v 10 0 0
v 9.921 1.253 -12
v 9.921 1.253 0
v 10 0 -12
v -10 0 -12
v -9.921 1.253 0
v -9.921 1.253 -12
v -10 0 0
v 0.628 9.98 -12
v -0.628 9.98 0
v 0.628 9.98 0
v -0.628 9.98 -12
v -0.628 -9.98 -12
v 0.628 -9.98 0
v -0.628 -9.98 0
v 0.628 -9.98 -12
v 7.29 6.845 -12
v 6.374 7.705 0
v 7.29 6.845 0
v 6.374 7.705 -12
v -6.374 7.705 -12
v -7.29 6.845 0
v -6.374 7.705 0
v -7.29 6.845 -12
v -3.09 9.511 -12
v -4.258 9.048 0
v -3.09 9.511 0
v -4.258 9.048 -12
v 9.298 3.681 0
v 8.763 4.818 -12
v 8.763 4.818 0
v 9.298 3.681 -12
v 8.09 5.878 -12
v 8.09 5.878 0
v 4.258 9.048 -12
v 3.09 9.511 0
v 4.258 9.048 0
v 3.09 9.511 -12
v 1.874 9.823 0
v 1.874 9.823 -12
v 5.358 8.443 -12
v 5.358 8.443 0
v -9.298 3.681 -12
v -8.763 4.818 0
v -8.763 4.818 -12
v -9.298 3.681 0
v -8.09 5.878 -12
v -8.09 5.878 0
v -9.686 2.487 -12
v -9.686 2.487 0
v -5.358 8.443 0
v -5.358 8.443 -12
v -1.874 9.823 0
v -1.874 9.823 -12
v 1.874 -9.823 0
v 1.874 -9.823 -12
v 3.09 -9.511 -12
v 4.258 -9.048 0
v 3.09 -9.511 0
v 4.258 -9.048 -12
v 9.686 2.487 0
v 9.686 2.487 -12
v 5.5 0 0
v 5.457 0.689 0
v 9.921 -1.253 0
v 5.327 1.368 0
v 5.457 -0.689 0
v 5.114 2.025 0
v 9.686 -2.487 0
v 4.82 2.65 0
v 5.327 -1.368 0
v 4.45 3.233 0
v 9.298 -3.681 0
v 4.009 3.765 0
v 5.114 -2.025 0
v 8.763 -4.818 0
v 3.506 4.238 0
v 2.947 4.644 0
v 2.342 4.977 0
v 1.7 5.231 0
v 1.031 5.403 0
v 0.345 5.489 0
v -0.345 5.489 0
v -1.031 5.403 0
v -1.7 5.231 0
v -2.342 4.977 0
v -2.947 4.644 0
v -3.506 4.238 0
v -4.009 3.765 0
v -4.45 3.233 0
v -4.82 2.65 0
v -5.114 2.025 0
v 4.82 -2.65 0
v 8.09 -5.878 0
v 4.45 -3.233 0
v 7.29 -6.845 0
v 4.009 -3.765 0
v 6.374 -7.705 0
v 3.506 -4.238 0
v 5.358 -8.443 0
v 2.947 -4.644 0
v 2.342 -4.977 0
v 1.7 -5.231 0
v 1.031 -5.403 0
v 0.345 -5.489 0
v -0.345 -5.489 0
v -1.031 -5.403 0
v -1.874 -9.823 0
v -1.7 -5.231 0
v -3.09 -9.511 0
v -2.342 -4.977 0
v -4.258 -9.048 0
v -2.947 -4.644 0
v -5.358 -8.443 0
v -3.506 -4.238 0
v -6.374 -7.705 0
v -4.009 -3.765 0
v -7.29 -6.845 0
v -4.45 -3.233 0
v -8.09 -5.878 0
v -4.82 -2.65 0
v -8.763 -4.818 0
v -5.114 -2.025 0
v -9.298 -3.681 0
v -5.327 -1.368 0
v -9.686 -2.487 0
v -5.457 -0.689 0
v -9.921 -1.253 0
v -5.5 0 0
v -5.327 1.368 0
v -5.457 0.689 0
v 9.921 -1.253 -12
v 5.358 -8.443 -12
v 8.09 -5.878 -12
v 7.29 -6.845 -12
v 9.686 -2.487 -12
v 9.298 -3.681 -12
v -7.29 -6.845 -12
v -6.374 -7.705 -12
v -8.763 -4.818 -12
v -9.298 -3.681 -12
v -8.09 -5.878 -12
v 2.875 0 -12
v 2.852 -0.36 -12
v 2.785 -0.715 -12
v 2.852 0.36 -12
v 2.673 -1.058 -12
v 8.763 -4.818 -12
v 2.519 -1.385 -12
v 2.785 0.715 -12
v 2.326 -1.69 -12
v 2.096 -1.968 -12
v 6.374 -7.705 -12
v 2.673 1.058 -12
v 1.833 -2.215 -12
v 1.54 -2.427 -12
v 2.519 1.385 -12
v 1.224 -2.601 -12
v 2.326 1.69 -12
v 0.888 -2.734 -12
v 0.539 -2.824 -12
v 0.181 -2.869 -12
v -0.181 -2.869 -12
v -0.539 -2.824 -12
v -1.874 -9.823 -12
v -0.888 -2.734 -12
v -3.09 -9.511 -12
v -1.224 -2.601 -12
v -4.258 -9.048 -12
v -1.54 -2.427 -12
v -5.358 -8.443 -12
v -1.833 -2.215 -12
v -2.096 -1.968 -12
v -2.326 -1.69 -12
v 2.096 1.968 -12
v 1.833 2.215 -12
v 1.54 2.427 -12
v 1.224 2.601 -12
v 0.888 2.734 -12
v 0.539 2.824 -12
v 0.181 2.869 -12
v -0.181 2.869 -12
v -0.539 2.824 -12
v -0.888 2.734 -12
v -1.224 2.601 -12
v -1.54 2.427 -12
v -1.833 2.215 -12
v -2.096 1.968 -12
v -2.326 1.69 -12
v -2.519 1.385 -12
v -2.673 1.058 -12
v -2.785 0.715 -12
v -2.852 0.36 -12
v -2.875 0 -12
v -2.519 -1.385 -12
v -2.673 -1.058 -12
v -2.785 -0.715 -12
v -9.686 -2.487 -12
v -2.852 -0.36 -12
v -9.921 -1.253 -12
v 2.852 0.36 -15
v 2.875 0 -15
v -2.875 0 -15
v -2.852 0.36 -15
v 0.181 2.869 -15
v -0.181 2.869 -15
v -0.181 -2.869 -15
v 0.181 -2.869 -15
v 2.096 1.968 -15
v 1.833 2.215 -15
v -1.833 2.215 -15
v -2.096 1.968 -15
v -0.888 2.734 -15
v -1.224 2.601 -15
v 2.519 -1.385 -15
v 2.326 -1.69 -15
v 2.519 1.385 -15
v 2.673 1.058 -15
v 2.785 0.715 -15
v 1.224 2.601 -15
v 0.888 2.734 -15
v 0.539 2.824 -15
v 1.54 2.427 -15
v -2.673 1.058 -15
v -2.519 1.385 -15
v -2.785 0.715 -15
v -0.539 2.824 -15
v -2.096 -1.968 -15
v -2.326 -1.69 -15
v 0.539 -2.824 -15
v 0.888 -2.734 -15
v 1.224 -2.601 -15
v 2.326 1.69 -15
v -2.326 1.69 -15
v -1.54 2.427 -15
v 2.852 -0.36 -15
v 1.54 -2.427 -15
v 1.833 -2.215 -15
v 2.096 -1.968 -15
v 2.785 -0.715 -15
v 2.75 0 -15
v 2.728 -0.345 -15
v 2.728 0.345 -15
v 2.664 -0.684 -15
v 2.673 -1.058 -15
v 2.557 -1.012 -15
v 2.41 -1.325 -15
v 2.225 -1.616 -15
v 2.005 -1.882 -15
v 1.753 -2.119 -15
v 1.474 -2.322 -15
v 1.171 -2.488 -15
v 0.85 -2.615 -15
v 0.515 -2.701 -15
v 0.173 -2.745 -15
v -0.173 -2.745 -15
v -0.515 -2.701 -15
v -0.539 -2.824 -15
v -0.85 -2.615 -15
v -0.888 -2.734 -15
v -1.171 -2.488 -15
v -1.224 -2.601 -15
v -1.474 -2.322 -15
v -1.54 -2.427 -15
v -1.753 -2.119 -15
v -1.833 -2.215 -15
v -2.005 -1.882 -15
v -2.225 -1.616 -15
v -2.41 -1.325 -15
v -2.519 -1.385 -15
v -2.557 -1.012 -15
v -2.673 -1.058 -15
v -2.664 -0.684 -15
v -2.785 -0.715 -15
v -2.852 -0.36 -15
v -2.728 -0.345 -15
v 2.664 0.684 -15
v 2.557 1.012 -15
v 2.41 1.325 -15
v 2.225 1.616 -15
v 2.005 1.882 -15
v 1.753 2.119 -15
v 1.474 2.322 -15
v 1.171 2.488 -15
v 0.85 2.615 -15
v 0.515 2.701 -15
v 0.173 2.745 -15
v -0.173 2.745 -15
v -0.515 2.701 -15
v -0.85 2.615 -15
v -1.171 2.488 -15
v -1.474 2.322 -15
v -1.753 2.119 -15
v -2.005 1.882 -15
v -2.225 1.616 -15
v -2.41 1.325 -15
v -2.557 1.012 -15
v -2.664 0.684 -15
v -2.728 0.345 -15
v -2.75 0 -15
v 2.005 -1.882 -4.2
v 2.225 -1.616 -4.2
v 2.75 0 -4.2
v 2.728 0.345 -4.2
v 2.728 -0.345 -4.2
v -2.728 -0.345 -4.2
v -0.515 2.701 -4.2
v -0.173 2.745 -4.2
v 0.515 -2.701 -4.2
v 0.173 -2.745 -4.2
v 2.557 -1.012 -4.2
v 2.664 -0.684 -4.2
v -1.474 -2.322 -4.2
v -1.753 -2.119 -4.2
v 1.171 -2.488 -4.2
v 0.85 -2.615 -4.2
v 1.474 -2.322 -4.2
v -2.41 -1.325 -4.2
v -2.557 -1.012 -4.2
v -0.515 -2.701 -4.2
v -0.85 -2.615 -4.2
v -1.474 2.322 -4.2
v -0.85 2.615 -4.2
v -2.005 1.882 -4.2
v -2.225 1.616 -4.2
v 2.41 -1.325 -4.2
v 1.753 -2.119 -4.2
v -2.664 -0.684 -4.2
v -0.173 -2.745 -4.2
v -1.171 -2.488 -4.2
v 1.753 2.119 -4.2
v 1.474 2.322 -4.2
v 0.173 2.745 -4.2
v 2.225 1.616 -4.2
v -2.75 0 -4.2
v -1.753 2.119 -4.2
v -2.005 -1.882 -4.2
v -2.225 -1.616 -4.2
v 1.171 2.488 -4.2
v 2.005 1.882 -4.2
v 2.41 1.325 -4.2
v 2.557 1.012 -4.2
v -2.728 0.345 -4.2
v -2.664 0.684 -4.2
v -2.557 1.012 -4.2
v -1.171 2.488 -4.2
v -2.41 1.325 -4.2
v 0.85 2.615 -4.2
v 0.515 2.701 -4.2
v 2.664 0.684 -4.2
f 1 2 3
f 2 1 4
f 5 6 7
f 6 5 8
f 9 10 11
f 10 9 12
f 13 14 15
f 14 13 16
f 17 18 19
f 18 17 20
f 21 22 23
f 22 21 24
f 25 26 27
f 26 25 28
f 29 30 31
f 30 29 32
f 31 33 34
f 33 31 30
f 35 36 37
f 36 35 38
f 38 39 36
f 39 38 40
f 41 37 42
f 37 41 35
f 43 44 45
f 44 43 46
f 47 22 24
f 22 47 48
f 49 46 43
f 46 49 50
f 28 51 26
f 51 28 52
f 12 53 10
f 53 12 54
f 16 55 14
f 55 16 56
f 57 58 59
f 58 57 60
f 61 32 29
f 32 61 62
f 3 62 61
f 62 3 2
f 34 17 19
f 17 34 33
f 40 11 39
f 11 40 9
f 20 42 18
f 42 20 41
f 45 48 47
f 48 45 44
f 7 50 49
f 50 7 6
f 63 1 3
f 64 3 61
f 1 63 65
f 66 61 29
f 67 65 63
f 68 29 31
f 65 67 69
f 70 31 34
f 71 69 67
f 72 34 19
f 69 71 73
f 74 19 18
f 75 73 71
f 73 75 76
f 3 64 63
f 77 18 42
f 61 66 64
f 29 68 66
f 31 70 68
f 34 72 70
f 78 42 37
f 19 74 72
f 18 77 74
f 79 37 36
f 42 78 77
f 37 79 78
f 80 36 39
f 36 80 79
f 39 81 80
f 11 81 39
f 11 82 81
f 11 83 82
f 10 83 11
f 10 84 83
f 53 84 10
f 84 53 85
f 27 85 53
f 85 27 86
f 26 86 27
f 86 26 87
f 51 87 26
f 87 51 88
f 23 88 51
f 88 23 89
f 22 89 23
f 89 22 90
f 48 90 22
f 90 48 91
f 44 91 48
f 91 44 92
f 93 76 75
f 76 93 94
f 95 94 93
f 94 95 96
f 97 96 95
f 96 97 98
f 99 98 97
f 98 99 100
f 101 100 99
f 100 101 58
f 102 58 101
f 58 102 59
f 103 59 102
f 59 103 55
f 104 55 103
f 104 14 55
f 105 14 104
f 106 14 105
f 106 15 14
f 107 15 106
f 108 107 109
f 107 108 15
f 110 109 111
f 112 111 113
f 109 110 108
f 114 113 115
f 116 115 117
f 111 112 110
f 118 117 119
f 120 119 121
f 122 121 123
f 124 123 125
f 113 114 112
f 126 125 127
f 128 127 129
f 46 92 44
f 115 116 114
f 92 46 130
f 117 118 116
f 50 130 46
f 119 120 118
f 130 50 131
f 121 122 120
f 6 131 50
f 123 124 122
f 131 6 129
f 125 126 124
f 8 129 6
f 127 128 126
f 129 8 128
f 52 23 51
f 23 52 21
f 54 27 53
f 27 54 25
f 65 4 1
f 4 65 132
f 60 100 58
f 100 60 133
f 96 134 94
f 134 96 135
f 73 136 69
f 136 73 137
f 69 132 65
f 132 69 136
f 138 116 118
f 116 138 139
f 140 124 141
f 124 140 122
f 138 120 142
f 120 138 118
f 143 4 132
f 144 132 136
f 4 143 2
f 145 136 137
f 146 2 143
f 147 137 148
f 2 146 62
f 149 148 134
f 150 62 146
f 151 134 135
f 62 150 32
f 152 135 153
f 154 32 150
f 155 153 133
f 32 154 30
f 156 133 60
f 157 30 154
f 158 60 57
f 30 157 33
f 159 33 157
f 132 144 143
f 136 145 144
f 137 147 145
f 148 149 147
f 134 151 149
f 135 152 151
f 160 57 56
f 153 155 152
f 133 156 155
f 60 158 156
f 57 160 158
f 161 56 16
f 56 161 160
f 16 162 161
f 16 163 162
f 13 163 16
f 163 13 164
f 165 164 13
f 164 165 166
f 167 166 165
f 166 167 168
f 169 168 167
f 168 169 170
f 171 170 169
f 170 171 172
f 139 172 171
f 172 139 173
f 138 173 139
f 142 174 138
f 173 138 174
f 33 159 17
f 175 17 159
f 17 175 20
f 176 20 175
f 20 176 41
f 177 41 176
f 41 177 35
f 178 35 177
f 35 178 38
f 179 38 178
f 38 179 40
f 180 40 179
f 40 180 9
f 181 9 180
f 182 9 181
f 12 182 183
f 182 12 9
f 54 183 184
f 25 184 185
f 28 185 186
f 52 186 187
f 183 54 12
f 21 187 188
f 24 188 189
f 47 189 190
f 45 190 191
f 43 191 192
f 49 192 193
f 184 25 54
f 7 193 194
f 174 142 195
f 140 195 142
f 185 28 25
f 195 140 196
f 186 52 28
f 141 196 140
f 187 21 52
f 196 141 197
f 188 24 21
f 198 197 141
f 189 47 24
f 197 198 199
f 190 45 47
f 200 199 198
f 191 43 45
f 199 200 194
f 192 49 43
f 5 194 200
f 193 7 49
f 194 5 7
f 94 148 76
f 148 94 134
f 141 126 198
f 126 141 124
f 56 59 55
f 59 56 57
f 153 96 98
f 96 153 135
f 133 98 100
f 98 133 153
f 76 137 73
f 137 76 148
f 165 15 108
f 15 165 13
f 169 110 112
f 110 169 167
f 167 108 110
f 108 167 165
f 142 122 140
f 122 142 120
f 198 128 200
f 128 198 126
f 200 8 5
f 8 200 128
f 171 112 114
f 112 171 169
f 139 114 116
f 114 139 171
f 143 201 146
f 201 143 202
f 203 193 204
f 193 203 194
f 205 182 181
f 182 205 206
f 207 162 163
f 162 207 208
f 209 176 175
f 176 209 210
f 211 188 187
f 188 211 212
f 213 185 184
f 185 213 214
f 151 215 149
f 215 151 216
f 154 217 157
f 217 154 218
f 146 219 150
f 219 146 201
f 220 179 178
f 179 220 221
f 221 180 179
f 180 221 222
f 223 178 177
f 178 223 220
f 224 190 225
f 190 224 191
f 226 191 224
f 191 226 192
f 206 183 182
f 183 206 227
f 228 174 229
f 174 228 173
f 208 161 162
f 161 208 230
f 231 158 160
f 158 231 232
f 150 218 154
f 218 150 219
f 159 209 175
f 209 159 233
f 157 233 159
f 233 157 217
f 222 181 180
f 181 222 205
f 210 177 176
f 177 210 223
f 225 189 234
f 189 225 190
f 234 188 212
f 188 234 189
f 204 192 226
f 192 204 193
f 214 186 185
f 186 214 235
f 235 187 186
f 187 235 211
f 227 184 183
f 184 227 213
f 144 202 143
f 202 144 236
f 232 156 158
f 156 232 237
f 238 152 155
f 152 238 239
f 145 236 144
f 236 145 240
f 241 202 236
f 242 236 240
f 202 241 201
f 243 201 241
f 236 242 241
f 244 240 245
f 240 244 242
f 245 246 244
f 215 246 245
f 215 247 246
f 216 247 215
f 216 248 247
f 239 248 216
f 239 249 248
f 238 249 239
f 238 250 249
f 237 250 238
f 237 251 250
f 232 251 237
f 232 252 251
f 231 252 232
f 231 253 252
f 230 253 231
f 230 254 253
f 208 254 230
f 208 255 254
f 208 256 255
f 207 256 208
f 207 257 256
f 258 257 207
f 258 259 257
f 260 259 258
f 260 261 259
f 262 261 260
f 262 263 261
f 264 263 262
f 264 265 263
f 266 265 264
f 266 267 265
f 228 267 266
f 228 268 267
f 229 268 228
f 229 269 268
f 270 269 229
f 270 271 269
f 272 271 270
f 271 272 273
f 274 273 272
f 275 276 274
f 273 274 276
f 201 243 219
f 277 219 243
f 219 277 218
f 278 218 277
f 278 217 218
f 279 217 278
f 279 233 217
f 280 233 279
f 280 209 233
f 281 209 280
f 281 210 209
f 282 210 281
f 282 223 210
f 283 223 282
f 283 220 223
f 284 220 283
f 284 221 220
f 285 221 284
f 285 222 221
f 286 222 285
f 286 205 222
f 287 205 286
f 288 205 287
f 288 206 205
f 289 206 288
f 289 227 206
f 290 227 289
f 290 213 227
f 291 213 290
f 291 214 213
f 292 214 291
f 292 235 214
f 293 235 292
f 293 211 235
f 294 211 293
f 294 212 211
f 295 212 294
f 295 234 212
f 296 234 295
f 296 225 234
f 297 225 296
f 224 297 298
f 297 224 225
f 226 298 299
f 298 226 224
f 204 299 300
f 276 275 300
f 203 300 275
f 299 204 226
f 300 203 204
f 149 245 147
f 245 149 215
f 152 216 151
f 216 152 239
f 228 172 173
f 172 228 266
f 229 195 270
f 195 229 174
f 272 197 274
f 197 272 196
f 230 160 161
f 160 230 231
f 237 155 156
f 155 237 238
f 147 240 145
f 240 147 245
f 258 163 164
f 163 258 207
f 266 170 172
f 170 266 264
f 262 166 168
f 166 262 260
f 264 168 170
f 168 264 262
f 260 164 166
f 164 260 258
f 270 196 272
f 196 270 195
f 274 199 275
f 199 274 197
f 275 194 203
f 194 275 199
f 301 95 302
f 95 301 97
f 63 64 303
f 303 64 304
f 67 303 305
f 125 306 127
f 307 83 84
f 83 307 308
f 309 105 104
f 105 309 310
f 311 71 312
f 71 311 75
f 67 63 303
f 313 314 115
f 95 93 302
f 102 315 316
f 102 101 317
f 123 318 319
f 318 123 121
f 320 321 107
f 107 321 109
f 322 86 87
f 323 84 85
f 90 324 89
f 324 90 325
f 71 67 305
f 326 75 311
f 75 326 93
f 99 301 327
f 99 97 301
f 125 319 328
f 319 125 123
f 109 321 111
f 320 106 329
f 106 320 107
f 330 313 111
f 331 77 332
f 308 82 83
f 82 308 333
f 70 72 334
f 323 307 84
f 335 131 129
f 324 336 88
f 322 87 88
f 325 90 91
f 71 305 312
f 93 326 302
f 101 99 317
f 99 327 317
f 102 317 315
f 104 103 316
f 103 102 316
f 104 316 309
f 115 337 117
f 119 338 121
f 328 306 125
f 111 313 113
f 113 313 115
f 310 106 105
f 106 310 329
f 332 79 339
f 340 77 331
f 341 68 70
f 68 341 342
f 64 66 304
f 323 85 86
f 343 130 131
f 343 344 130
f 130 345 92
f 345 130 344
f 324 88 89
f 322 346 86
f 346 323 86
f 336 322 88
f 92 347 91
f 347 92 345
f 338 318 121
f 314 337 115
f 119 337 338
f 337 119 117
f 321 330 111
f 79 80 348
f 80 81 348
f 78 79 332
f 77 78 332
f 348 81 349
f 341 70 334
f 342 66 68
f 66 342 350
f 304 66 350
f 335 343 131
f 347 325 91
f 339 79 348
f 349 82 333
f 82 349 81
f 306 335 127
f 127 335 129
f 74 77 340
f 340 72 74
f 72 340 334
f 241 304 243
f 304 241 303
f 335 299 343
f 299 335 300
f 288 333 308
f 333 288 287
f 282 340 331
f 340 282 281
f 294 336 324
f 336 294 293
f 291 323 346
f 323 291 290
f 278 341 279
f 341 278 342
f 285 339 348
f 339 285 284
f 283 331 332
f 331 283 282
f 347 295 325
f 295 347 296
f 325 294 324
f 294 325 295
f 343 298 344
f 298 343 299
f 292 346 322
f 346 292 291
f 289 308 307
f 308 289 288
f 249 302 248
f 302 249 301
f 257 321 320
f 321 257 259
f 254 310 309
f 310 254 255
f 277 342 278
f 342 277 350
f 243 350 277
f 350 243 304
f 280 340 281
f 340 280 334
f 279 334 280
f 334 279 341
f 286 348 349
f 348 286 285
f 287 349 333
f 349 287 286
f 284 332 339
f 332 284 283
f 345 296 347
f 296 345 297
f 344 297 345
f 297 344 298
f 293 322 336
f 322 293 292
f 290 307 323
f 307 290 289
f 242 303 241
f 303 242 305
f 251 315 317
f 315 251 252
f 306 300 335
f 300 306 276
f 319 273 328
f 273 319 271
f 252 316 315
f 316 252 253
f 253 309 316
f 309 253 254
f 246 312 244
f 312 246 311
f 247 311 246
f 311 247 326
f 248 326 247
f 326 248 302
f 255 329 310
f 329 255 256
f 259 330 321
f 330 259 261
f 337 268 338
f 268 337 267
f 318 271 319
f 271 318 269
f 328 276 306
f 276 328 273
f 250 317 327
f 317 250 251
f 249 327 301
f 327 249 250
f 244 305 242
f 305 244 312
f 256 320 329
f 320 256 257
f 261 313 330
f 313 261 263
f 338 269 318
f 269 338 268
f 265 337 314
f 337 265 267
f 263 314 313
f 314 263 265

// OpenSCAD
$fn = 50;

difference() {
	union() {
		translate(v = [0, 0, -12.0]) {
			cylinder(h = 12, r = 10.0);
		}
		#translate(v = [0, 0, -15.0]) {
			cylinder(h = 15, r = 2.875);
		}
	}
	union() {
		translate(v = [0, 0, 0]) {
			rotate(a = [0, 0, 0]) {
				difference() {
					union() {
						translate(v = [0, 0, -15.0]) {
							cylinder(h = 15, r = 2.25);
						}
						translate(v = [0, 0, -4.2]) {
							cylinder(h = 4.2, r1 = 2.75, r2 = 5.5);
						}
						translate(v = [0, 0, -15.0]) {
							cylinder(h = 15, r = 2.75);
						}
						translate(v = [0, 0, -15.0]) {
							cylinder(h = 15, r = 2.25);
						}
					}
					union();
				}
			}
		}
	}
}
